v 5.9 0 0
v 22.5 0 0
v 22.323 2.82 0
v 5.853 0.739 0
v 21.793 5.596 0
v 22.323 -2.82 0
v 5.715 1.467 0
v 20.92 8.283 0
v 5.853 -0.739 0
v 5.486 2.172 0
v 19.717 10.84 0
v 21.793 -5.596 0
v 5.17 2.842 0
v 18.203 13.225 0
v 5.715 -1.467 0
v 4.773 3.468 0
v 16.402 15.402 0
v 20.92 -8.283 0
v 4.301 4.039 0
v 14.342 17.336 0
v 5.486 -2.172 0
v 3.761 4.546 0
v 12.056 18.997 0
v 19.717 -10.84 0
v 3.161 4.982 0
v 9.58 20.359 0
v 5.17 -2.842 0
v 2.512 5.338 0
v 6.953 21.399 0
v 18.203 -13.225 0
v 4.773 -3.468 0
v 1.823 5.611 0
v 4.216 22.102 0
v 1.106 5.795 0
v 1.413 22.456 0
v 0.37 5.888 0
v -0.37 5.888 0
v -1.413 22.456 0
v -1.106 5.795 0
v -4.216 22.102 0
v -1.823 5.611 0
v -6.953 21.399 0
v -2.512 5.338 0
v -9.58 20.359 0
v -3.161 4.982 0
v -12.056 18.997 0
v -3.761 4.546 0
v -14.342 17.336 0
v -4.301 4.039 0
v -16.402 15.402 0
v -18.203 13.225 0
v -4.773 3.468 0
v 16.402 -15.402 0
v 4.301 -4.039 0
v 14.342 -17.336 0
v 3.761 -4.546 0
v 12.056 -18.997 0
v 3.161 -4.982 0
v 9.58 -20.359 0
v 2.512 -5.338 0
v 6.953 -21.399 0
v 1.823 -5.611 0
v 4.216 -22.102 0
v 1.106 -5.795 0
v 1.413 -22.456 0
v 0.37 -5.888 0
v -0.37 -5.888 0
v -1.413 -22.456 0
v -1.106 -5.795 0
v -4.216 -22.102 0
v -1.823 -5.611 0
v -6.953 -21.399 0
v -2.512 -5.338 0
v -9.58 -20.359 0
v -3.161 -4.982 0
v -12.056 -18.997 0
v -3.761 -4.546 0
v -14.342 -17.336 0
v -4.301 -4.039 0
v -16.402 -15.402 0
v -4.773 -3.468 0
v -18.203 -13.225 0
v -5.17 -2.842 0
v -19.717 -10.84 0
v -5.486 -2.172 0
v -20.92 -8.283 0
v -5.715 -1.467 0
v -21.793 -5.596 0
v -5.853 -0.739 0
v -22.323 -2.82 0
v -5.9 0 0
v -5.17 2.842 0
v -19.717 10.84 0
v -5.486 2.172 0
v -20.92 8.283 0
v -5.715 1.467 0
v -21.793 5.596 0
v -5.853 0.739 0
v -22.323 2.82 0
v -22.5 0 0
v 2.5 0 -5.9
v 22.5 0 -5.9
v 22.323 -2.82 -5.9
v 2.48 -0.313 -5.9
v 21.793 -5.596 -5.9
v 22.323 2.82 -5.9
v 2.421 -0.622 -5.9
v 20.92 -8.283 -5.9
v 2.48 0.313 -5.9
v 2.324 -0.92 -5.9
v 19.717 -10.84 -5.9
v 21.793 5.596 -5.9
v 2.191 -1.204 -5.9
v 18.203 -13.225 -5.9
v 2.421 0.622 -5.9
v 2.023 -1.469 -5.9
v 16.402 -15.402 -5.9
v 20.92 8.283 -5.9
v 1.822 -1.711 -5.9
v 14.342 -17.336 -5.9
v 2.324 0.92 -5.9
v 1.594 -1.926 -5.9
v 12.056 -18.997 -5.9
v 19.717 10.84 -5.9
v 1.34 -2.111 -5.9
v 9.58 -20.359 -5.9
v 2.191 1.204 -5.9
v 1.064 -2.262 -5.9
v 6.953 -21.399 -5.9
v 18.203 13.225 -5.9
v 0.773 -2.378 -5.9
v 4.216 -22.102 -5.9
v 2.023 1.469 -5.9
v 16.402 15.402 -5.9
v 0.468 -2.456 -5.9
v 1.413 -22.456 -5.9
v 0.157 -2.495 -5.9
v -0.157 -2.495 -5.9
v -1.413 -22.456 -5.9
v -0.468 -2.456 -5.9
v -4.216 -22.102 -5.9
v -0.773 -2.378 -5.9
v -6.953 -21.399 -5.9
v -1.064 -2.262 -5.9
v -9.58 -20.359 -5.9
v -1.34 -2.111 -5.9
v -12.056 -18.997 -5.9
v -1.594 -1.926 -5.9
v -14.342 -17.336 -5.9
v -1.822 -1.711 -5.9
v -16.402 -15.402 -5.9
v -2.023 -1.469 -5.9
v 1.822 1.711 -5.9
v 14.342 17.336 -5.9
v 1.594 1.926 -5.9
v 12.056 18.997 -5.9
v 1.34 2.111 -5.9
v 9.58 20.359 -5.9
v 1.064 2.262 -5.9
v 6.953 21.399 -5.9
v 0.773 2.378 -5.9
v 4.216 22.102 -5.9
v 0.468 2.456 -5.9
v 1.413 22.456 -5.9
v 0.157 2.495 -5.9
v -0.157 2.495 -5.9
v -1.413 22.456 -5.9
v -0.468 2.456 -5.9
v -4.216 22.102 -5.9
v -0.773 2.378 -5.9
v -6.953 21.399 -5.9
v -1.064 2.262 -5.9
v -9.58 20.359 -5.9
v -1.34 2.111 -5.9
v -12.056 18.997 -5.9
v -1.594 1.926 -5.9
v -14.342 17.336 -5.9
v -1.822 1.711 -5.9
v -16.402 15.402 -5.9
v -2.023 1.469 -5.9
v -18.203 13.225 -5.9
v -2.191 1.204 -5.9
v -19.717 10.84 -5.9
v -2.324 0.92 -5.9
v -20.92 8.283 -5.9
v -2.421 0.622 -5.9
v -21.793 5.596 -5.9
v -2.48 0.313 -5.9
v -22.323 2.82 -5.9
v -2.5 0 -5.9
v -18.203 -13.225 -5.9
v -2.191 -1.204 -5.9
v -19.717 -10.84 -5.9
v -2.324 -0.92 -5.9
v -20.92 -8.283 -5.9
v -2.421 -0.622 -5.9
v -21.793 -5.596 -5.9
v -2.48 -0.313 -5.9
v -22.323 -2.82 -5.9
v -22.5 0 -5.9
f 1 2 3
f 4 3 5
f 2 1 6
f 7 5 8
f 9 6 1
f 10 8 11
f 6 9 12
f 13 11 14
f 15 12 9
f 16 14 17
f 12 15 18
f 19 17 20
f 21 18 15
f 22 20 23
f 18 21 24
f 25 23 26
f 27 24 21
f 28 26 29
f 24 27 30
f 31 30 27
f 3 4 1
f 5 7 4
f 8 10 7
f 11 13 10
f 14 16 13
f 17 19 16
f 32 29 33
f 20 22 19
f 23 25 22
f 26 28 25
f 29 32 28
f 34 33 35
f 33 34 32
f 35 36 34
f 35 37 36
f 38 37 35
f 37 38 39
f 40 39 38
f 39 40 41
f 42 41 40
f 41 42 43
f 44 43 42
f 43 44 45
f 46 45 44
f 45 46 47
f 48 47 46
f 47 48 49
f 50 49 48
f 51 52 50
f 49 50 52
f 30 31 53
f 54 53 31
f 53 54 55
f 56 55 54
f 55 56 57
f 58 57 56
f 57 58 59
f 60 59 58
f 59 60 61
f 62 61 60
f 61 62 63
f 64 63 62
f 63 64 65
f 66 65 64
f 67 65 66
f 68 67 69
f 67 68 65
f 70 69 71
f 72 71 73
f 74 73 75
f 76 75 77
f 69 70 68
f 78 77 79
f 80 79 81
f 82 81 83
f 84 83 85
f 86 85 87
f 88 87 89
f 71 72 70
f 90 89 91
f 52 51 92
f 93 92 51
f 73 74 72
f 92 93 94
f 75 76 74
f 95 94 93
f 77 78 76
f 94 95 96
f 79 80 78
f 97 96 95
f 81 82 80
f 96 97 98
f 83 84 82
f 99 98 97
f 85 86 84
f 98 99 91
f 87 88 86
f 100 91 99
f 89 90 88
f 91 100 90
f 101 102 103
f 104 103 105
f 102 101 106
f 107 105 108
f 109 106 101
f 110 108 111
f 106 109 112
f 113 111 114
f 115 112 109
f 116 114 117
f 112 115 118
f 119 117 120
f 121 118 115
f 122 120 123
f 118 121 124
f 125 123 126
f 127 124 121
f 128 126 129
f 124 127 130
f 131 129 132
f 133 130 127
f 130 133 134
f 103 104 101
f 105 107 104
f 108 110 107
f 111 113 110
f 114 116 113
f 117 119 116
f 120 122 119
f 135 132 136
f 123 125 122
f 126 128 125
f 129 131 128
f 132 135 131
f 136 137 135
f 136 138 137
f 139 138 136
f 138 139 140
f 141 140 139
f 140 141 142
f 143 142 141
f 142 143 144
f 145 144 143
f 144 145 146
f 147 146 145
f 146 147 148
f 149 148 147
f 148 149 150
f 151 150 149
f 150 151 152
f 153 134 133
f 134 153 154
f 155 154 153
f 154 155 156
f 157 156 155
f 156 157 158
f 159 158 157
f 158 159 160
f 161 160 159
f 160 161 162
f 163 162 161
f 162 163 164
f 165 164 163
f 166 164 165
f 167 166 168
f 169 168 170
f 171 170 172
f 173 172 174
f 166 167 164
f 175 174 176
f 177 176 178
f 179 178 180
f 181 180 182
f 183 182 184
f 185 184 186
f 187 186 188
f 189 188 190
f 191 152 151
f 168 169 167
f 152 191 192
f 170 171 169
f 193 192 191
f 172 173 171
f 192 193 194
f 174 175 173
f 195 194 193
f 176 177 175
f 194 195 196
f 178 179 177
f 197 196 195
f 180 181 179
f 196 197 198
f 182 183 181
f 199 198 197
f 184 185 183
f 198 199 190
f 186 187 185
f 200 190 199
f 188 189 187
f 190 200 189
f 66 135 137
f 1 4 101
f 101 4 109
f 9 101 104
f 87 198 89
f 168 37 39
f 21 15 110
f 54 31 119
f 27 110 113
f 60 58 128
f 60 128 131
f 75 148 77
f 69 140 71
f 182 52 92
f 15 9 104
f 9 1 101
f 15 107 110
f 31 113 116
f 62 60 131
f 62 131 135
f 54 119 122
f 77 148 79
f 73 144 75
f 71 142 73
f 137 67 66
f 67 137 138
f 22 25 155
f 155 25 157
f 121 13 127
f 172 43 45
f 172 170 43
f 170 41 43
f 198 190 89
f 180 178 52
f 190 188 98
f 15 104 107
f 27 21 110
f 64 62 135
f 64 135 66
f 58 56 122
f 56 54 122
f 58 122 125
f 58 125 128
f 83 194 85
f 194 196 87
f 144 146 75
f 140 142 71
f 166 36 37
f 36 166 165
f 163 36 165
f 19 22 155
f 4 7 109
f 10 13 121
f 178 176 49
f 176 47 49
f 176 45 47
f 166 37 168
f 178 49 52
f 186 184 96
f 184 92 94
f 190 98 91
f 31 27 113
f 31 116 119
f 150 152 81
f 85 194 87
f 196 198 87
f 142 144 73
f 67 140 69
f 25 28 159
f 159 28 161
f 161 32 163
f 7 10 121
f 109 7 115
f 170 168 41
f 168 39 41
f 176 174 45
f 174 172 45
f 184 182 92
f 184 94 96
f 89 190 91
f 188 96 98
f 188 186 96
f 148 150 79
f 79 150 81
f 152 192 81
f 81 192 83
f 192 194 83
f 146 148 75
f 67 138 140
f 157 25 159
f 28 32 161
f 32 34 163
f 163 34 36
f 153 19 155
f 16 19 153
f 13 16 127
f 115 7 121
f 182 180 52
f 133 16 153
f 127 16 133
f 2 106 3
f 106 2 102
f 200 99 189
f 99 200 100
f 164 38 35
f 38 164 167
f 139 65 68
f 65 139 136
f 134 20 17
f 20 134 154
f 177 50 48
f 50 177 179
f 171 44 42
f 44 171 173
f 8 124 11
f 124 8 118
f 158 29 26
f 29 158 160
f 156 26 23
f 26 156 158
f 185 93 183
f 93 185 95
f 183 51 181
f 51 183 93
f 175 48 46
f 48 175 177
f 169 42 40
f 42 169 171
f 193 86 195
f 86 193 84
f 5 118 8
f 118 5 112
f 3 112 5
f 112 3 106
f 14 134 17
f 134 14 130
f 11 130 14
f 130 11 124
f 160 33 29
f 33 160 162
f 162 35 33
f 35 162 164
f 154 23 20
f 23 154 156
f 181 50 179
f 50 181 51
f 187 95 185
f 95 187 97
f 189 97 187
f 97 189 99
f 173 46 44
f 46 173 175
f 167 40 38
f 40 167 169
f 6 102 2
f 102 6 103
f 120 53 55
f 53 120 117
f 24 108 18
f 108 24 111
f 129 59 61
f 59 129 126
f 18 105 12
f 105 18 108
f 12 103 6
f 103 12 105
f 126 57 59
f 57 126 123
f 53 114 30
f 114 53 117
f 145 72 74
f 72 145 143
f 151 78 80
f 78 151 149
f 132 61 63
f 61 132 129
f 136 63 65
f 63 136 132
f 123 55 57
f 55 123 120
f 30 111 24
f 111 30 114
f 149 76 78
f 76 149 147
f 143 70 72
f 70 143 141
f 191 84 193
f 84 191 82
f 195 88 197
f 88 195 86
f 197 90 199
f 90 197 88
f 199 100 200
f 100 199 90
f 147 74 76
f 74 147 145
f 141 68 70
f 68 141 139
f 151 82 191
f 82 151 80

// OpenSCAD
$fn = 50;


difference() {
	union() {
		translate(v = [0, 0, -5.9000000000]) {
			cylinder(h = 5.9000000000, r = 22.5000000000);
		}
	}
	union() {
		translate(v = [0, 0, 0]) {
			rotate(a = [0, 0, 0]) {
				difference() {
					union() {
						#translate(v = [0, 0, -5.9000000000]) {
							cylinder(h = 5.9000000000, r = 2.2500000000);
						}
						#translate(v = [0, 0, -5.9000000000]) {
							cylinder(h = 5.9000000000, r1 = 2.5000000000, r2 = 5.9000000000);
						}
						#translate(v = [0, 0, -5.9000000000]) {
							cylinder(h = 5.9000000000, r = 2.5000000000);
						}
						#translate(v = [0, 0, -5.9000000000]) {
							cylinder(h = 5.9000000000, r = 2.2500000000);
						}
					}
					union();
				}
			}
		}
	}
}
